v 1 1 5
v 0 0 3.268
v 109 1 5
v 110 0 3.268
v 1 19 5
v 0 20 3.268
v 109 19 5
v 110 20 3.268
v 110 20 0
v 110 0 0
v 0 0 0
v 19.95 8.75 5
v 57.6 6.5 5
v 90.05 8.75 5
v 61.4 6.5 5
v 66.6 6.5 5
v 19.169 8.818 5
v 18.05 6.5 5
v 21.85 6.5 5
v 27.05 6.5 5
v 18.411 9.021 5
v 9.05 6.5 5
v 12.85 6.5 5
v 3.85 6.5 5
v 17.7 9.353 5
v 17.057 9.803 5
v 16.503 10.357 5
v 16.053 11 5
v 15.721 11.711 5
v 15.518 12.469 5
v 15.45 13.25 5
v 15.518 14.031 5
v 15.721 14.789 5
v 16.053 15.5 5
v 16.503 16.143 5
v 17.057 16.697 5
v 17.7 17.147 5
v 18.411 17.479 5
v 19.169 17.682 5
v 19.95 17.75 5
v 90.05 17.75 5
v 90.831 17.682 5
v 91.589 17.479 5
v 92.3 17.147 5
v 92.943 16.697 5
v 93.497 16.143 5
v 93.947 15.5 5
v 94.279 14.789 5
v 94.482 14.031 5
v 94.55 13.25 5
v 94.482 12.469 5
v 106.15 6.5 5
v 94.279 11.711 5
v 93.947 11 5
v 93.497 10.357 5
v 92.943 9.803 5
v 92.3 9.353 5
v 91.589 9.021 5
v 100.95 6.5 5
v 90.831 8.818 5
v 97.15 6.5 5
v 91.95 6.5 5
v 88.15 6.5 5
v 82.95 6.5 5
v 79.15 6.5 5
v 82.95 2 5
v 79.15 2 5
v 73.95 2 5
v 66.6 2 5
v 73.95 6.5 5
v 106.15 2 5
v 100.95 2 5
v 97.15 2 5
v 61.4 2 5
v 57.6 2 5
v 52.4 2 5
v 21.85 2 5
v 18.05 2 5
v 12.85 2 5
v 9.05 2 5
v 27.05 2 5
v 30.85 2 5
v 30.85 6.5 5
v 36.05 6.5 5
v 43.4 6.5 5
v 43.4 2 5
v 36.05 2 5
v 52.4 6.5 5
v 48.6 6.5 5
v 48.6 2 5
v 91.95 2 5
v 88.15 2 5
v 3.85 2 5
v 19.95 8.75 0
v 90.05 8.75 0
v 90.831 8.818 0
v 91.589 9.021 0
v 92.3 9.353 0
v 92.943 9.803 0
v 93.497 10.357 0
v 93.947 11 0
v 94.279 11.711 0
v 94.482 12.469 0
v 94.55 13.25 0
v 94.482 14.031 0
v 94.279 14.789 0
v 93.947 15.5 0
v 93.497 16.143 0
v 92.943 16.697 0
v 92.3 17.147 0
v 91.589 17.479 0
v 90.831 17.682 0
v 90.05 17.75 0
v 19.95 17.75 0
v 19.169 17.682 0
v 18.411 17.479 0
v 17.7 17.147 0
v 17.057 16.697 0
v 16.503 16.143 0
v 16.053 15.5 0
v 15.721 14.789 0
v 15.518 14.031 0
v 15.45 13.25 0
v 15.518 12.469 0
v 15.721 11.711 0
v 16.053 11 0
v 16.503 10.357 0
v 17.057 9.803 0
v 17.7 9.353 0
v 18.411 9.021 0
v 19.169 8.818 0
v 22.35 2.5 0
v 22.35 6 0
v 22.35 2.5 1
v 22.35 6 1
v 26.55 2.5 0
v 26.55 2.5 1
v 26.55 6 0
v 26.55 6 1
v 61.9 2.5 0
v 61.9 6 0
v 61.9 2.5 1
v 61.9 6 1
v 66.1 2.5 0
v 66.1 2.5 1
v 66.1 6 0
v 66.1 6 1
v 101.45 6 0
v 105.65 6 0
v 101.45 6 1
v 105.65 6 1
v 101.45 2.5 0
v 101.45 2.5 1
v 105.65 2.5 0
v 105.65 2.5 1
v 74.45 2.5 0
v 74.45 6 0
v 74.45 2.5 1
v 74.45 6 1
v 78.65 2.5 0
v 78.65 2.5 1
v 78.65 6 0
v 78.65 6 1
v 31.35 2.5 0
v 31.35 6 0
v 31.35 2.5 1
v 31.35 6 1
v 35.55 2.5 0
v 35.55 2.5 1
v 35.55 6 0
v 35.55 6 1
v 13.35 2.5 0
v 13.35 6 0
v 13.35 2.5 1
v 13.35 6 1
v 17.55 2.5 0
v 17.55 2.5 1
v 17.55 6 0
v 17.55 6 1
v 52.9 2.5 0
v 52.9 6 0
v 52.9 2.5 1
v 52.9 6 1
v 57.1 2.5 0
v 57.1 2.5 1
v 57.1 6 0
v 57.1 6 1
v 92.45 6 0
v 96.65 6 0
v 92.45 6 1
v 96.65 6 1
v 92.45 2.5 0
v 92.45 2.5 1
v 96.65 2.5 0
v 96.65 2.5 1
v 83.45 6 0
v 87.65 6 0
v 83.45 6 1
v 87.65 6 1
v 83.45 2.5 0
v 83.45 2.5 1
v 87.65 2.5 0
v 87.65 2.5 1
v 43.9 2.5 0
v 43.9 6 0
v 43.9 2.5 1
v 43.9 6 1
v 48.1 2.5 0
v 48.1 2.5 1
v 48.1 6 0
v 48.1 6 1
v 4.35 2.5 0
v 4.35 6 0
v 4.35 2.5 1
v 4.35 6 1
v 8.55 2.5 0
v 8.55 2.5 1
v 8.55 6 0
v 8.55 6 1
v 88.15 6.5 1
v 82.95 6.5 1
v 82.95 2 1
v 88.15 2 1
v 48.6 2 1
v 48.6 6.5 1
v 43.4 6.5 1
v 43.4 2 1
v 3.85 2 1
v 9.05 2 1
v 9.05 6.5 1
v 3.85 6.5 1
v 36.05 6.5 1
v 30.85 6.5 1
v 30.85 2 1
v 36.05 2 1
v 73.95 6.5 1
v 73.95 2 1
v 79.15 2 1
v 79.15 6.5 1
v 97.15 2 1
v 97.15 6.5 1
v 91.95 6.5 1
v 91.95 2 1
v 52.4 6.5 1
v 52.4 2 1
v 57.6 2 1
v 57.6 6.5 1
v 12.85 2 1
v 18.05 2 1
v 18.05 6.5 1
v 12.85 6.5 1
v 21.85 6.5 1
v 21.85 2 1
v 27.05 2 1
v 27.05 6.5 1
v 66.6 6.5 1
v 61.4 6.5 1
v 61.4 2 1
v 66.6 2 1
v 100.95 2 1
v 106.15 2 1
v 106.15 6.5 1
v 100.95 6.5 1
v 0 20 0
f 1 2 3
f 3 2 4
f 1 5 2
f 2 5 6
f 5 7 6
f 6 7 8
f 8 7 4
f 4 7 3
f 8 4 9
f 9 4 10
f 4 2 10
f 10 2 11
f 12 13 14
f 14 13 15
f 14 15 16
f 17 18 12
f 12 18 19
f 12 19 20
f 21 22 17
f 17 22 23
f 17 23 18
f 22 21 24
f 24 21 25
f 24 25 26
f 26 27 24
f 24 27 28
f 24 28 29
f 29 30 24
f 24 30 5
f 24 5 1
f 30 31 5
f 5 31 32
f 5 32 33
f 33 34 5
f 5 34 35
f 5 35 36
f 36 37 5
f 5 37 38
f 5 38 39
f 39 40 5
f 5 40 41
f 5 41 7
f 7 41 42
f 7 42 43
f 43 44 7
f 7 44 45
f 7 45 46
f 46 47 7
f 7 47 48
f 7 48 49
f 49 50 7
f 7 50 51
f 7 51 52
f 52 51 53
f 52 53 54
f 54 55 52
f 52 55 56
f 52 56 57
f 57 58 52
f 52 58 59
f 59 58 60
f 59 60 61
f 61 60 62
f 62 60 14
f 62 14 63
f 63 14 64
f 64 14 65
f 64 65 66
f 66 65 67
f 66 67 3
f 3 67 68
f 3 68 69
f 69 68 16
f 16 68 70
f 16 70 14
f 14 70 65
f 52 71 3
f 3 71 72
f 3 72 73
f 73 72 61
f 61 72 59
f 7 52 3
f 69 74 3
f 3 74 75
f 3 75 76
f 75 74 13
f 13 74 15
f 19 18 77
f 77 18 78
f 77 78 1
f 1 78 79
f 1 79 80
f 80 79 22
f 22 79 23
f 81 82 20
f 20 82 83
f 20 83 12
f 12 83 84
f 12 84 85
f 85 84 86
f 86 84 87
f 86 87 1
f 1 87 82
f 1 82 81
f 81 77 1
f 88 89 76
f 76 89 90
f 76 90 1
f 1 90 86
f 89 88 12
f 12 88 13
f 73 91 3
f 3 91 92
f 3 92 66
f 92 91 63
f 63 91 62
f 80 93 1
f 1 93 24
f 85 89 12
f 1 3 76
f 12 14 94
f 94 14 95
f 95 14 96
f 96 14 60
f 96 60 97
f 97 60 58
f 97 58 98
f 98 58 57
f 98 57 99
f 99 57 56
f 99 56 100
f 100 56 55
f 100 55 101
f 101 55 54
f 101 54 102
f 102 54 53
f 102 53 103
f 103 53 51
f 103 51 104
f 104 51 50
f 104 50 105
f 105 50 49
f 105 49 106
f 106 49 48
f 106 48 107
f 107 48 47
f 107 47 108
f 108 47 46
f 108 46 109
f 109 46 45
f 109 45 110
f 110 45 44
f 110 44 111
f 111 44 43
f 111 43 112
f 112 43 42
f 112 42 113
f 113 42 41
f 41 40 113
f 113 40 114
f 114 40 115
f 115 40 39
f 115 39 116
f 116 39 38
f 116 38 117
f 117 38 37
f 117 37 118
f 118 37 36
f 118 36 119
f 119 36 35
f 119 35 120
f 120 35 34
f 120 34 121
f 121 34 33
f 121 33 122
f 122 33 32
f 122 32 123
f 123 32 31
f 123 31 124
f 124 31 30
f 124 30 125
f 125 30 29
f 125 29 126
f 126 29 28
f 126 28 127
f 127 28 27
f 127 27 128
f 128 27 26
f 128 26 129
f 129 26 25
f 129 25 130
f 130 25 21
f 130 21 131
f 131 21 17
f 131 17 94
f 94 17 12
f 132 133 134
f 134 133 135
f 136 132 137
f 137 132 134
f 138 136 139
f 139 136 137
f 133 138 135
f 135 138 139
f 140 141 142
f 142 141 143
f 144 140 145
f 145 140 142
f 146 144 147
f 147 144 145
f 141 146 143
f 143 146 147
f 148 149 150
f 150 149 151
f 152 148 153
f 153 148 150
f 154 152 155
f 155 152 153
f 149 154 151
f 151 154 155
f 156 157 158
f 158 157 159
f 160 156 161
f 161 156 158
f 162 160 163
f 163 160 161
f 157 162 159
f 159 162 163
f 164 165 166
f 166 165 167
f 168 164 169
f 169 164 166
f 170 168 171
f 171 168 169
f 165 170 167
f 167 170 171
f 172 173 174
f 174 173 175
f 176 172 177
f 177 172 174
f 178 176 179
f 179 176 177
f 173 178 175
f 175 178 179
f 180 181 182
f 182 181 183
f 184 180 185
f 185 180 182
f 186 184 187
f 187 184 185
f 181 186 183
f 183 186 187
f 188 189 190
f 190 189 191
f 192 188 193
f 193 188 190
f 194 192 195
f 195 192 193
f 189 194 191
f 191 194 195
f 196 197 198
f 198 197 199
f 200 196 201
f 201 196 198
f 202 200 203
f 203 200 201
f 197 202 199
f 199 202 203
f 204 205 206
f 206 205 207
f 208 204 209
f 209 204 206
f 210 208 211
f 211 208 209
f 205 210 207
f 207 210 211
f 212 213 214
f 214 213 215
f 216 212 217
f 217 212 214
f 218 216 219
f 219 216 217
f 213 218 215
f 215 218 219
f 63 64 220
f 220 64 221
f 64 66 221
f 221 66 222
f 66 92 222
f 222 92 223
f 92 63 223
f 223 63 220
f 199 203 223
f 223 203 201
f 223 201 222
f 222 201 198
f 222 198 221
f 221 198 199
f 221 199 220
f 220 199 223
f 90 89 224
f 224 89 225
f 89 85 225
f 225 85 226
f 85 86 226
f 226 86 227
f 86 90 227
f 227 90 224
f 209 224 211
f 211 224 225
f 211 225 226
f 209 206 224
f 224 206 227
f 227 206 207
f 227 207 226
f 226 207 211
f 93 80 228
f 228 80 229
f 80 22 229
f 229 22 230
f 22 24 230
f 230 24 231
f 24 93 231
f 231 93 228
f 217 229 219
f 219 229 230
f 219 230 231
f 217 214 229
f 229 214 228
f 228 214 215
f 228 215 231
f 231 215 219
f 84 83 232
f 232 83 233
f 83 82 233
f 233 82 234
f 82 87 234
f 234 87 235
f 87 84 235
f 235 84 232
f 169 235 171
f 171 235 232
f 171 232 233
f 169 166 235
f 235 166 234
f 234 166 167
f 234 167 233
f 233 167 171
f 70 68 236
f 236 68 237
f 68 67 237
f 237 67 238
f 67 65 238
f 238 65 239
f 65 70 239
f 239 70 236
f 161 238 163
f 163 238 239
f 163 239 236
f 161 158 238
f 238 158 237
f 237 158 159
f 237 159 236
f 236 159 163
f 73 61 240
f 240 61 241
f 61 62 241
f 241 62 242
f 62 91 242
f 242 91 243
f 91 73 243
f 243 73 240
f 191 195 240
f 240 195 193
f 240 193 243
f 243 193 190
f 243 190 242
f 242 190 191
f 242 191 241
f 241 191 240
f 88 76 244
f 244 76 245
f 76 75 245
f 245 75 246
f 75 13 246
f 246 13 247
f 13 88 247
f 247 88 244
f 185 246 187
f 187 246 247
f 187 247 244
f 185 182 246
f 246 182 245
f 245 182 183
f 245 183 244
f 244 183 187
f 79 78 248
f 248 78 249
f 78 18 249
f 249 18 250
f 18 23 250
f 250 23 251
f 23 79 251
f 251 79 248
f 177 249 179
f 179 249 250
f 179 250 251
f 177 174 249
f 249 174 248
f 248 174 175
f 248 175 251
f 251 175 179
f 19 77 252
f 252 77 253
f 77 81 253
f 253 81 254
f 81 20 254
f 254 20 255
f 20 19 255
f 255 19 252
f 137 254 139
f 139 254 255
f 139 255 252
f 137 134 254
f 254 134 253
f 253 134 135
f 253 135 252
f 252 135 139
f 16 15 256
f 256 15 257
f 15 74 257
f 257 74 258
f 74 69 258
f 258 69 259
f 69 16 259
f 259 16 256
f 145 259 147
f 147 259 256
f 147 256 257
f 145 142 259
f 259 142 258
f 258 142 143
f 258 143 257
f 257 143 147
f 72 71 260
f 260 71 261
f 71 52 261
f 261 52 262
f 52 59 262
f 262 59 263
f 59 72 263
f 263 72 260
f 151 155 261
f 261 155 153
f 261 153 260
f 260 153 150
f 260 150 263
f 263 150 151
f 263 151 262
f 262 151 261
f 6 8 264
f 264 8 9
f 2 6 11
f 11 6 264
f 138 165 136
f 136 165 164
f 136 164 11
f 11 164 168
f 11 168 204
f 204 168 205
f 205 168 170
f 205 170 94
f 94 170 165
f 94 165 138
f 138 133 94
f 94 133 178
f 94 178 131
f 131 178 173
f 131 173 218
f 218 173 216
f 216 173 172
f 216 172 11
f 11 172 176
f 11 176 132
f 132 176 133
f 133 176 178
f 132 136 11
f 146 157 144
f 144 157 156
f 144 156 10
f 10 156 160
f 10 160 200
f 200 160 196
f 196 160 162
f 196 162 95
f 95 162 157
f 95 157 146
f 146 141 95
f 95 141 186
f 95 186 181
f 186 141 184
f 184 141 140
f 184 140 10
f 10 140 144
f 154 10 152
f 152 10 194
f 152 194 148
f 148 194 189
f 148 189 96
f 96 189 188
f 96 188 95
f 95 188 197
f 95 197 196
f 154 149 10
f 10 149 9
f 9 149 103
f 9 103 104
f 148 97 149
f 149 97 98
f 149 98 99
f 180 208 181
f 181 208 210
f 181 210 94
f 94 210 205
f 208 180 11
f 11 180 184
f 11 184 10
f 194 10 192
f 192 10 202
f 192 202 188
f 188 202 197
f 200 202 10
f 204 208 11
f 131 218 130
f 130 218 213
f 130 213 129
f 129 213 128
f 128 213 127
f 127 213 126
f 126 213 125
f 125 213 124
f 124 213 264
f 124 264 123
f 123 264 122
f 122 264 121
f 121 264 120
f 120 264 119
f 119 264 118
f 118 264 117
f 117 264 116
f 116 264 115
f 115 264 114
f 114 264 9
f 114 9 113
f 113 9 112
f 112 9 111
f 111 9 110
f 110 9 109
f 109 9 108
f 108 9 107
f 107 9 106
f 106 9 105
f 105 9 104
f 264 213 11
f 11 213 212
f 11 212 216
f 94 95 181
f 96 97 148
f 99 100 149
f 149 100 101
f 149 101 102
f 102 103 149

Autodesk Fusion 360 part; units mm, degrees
sketch "Sketch1" plane through (0, 0, 0) normal (0, 0, 1) x (1, 0, 0)
  line L0 (0, 0) -> (110, 0)
  line L1 (110, 0) -> (110, 20)
  line L2 (110, 20) -> (0, 20)
  line L3 (0, 20) -> (0, 0)
  dimension "d1" = 110
  dimension "d2" = 20
extrude "Extrude1" add sketch "Sketch1" along normal blind 5
sketch "Sketch2" plane through (0, 0, 5) normal (0, 0, 1) x (-1, 0, 0)
  line L0 (0, -20) -> (0, 0)
  line L1 (0, 0) -> (-110, 0)
  line L2 (-110, 0) -> (-110, -20)
  line L3 (-110, -20) -> (0, -20)
  line L4 (-3.85, -2) -> (-106.15, -2) construction
  line L5 (-46, -2) -> (-46, -6.5) construction
  line L6 (-91.95, -6.5) -> (-91.95, -2)
  line L7 (-97.15, -6.5) -> (-91.95, -6.5)
  line L8 (-73.95, -6.5) -> (-73.95, -2)
  line L9 (-55, -2) -> (-55, -6.5) construction
  line L10 (-33.45, -2) -> (-33.45, -6.5) construction
  line L11 (-27.05, -2) -> (-27.05, -6.5)
  line L12 (-30.85, -6.5) -> (-30.85, -2)
  line L13 (-43.4, -6.5) -> (-43.4, -2)
  line L14 (-18.05, -2) -> (-18.05, -6.5)
  line L15 (-21.85, -6.5) -> (-21.85, -2)
  line L16 (-36.05, -6.5) -> (-30.85, -6.5)
  line L17 (-9.05, -2) -> (-9.05, -6.5)
  line L18 (-9.05, -6.5) -> (-3.85, -6.5)
  line L19 (-21.85, -2) -> (-27.05, -2)
  line L20 (-3.85, -2) -> (-9.05, -2)
  line L21 (-12.85, -2) -> (-18.05, -2)
  line L22 (-3.85, -6.5) -> (-3.85, -2)
  line L23 (-18.05, -6.5) -> (-12.85, -6.5)
  line L24 (-30.85, -2) -> (-36.05, -2)
  line L25 (-82.95, -6.5) -> (-82.95, -2)
  line L26 (-57.6, -2) -> (-57.6, -6.5)
  line L27 (-48.6, -2) -> (-48.6, -6.5)
  line L28 (-61.4, -2) -> (-66.6, -2)
  line L29 (-64, -2) -> (-64, -6.5) construction
  line L30 (-106.15, -6.5) -> (-100.95, -6.5)
  line L31 (-100.95, -2) -> (-106.15, -2)
  line L32 (-106.15, -2) -> (-106.15, -6.5)
  line L33 (-79.15, -2) -> (-79.15, -6.5)
  line L34 (-61.4, -6.5) -> (-61.4, -2)
  line L35 (-52.4, -6.5) -> (-52.4, -2)
  line L36 (-88.15, -6.5) -> (-82.95, -6.5)
  line L37 (-97.15, -2) -> (-97.15, -6.5)
  line L38 (-106.15, -2) -> (-106.15, -6.5) construction
  line L39 (-48.6, -6.5) -> (-43.4, -6.5)
  line L40 (-52.4, -2) -> (-57.6, -2)
  line L41 (-76.55, -2) -> (-76.55, -6.5) construction
  line L42 (-43.4, -2) -> (-48.6, -2)
  line L43 (-57.6, -6.5) -> (-52.4, -6.5)
  line L44 (-66.6, -6.5) -> (-61.4, -6.5)
  line L45 (-82.95, -2) -> (-88.15, -2)
  line L46 (-66.6, -2) -> (-66.6, -6.5)
  line L47 (-100.95, -6.5) -> (-100.95, -2)
  line L48 (-91.95, -2) -> (-97.15, -2)
  line L49 (-88.15, -2) -> (-88.15, -6.5)
  line L50 (-27.05, -6.5) -> (-21.85, -6.5)
  line L51 (-12.85, -6.5) -> (-12.85, -2)
  line L52 (-36.05, -2) -> (-36.05, -6.5)
  line L53 (-3.85, -6.5) -> (-3.85, -2) construction
  line L54 (-73.95, -2) -> (-79.15, -2)
  line L55 (-106.15, -6.5) -> (-3.85, -6.5) construction
  line L56 (-79.15, -6.5) -> (-73.95, -6.5)
  line L57 (0, -2) -> (-110, -2) construction
  line L58 (-55, -20) -> (-55, 0) construction
  dimension "d27" = 9
  dimension "d28" = 0
  dimension "d31" = 9
  dimension "d32" = 0
  dimension "d35" = 9
  dimension "d36" = 0
  dimension "d37" = 5.2
  dimension "d38" = 4.5
  dimension "d39" = 5.2
  dimension "d40" = 4.5
  dimension "d41" = 12.55
  dimension "d42" = 5.2
  dimension "d43" = 4.5
  dimension "d44" = 12.55
  dimension "d45" = 2
extrude "Extrude2" cut sketch "Sketch2" against normal blind 4 contours L6 L7 L37 L48 | L8 L33 L54 L56 | L11 L15 L19 L50 | L12 L16 L24 L52 | L13 L27 L39 L42 | L14 L21 L23 L51 | L17 L18 L20 L22 | L25 L36 L45 L49 | L26 L35 L40 L43 | L28 L34 L44 L46 | L30 L31 L32 L47
sketch "Sketch3" plane through (0, 0, 1) normal (0, 0, 1) x (-1, 0, 0)
  line L0 (-3.85, -6.5) -> (-3.85, -2)
  line L1 (-3.85, -2) -> (-9.05, -2)
  line L2 (-9.05, -2) -> (-9.05, -6.5)
  line L3 (-9.05, -6.5) -> (-3.85, -6.5)
  line L4 (-4.35, -6) -> (-8.55, -6)
  line L5 (-8.55, -6) -> (-8.55, -2.5)
  line L6 (-8.55, -2.5) -> (-4.35, -2.5)
  line L7 (-4.35, -2.5) -> (-4.35, -6)
  line L8 (-13.35, -6) -> (-17.55, -6)
  line L9 (-17.55, -6) -> (-17.55, -2.5)
  line L10 (-17.55, -2.5) -> (-13.35, -2.5)
  line L11 (-13.35, -2.5) -> (-13.35, -6)
  line L12 (-22.35, -6) -> (-26.55, -6)
  line L13 (-26.55, -6) -> (-26.55, -2.5)
  line L14 (-26.55, -2.5) -> (-22.35, -2.5)
  line L15 (-22.35, -2.5) -> (-22.35, -6)
  line L16 (-31.35, -6) -> (-35.55, -6)
  line L17 (-35.55, -6) -> (-35.55, -2.5)
  line L18 (-35.55, -2.5) -> (-31.35, -2.5)
  line L19 (-31.35, -2.5) -> (-31.35, -6)
  line L20 (-43.9, -6) -> (-48.1, -6)
  line L21 (-48.1, -6) -> (-48.1, -2.5)
  line L22 (-48.1, -2.5) -> (-43.9, -2.5)
  line L23 (-43.9, -2.5) -> (-43.9, -6)
  line L24 (-43.4, -6.5) -> (-48.6, -6.5)
  line L25 (-48.6, -2) -> (-43.4, -2)
  line L26 (-48.6, -6.5) -> (-48.6, -2)
  line L27 (-43.4, -2) -> (-43.4, -6.5)
  line L28 (-52.9, -6) -> (-57.1, -6)
  line L29 (-57.1, -6) -> (-57.1, -2.5)
  line L30 (-57.1, -2.5) -> (-52.9, -2.5)
  line L31 (-52.9, -2.5) -> (-52.9, -6)
  line L32 (-61.9, -6) -> (-66.1, -6)
  line L33 (-66.1, -6) -> (-66.1, -2.5)
  line L34 (-66.1, -2.5) -> (-61.9, -2.5)
  line L35 (-61.9, -2.5) -> (-61.9, -6)
  line L36 (-78.65, -2.5) -> (-74.45, -2.5)
  line L37 (-78.65, -6) -> (-78.65, -2.5)
  line L38 (-74.45, -6) -> (-78.65, -6)
  line L39 (-74.45, -2.5) -> (-74.45, -6)
  line L40 (-73.95, -6.5) -> (-79.15, -6.5)
  line L41 (-79.15, -2) -> (-73.95, -2)
  line L42 (-79.15, -6.5) -> (-79.15, -2)
  line L43 (-73.95, -2) -> (-73.95, -6.5)
  line L44 (-87.65, -6) -> (-87.65, -2.5)
  line L45 (-87.65, -2.5) -> (-83.45, -2.5)
  line L46 (-83.45, -2.5) -> (-83.45, -6)
  line L47 (-83.45, -6) -> (-87.65, -6)
  line L48 (-96.65, -6) -> (-96.65, -2.5)
  line L49 (-96.65, -2.5) -> (-92.45, -2.5)
  line L50 (-92.45, -2.5) -> (-92.45, -6)
  line L51 (-92.45, -6) -> (-96.65, -6)
  line L52 (-105.65, -6) -> (-105.65, -2.5)
  line L53 (-105.65, -2.5) -> (-101.45, -2.5)
  line L54 (-101.45, -2.5) -> (-101.45, -6)
  line L55 (-101.45, -6) -> (-105.65, -6)
  dimension "d48" = 0.5
  dimension "d49" = 0.5
  dimension "d50" = 0.5
  dimension "d51" = 0.5
  dimension "d54" = -9
  dimension "d55" = 0
  dimension "d56" = 0.5
  dimension "d57" = 0.5
  dimension "d58" = 0.5
  dimension "d59" = 0.5
  dimension "d62" = -9
  dimension "d63" = 0
  dimension "d64" = 0.5
  dimension "d65" = 0.5
  dimension "d66" = 0.5
  dimension "d67" = 0.5
  dimension "d70" = -9
  dimension "d71" = 0
extrude "Extrude3" cut sketch "Sketch3" against normal blind 2 contours L4 L5 L6 L7 | L8 L9 L10 L11 | L12 L13 L14 L15 | L16 L17 L18 L19 | L20 L21 L22 L23 | L28 L29 L30 L31 | L32 L33 L34 L35 | L36 L37 L38 L39 | L44 L45 L46 L47 | L48 L49 L50 L51 | L52 L53 L54 L55
sketch "Sketch4" plane through (0, 0, 5) normal (0, 0, 1) x (-1, 0, 0)
  line L0 (0, -20) -> (0, 0)
  line L1 (0, 0) -> (-110, 0)
  line L2 (-110, 0) -> (-110, -20)
  line L3 (-110, -20) -> (0, -20)
  line L4 (-106.15, -2) -> (-100.95, -2)
  line L5 (-100.95, -2) -> (-100.95, -6.5)
  line L6 (-100.95, -6.5) -> (-106.15, -6.5)
  line L7 (-106.15, -6.5) -> (-106.15, -2)
  line L8 (-61.4, -6.5) -> (-66.6, -6.5)
  line L9 (-66.6, -6.5) -> (-66.6, -2)
  line L10 (-66.6, -2) -> (-61.4, -2)
  line L11 (-61.4, -2) -> (-61.4, -6.5)
  line L12 (-21.85, -2) -> (-21.85, -6.5)
  line L13 (-21.85, -6.5) -> (-27.05, -6.5)
  line L14 (-27.05, -6.5) -> (-27.05, -2)
  line L15 (-27.05, -2) -> (-21.85, -2)
  line L16 (-18.05, -2) -> (-12.85, -2)
  line L17 (-12.85, -2) -> (-12.85, -6.5)
  line L18 (-12.85, -6.5) -> (-18.05, -6.5)
  line L19 (-18.05, -6.5) -> (-18.05, -2)
  line L20 (-52.4, -2) -> (-52.4, -6.5)
  line L21 (-52.4, -6.5) -> (-57.6, -6.5)
  line L22 (-57.6, -6.5) -> (-57.6, -2)
  line L23 (-57.6, -2) -> (-52.4, -2)
  line L24 (-97.15, -6.5) -> (-97.15, -2)
  line L25 (-97.15, -2) -> (-91.95, -2)
  line L26 (-91.95, -2) -> (-91.95, -6.5)
  line L27 (-91.95, -6.5) -> (-97.15, -6.5)
  line L28 (-73.95, -2) -> (-73.95, -6.5)
  line L29 (-73.95, -6.5) -> (-79.15, -6.5)
  line L30 (-79.15, -6.5) -> (-79.15, -2)
  line L31 (-79.15, -2) -> (-73.95, -2)
  line L32 (-30.85, -6.5) -> (-36.05, -6.5)
  line L33 (-36.05, -6.5) -> (-36.05, -2)
  line L34 (-36.05, -2) -> (-30.85, -2)
  line L35 (-30.85, -2) -> (-30.85, -6.5)
  line L36 (-9.05, -2) -> (-3.85, -2)
  line L37 (-3.85, -2) -> (-3.85, -6.5)
  line L38 (-3.85, -6.5) -> (-9.05, -6.5)
  line L39 (-9.05, -6.5) -> (-9.05, -2)
  line L40 (-48.6, -6.5) -> (-48.6, -2)
  line L41 (-48.6, -2) -> (-43.4, -2)
  line L42 (-43.4, -2) -> (-43.4, -6.5)
  line L43 (-43.4, -6.5) -> (-48.6, -6.5)
  line L44 (-82.95, -6.5) -> (-88.15, -6.5)
  line L45 (-88.15, -6.5) -> (-88.15, -2)
  line L46 (-88.15, -2) -> (-82.95, -2)
  line L47 (-82.95, -2) -> (-82.95, -6.5)
  line L48 (-21.85, -6.5) -> (-18.05, -6.5) construction
  line L49 (-19.95, -6.5) -> (-19.95, -20) construction
  line L50 (-88.15, -6.5) -> (-91.95, -6.5) construction
  line L51 (-90.05, -6.5) -> (-90.05, -20) construction
  circle A0 centre (-19.95, -13.25) radius 4.5
  circle A1 centre (-90.05, -13.25) radius 4.5
  line L52 (-19.95, -17.75) -> (-90.05, -17.75)
  line L53 (-90.05, -8.75) -> (-19.95, -8.75)
  dimension "d80" = 9
  dimension "d81" = 9
extrude "Extrude4" cut sketch "Sketch4" against normal blind 5 contours A0 | A0 A1 L52 L53 | A1
chamfer "Chamfer1" distance 1 angle 60 4 edges at (55, 20, 5) (0, 10, 5) (55, 0, 5) (110, 10, 5) measured on face at (101.8291, 13.3621, 5) measured on face at (101.8291, 13.3621, 5) measured on face at (101.8291, 13.3621, 5) measured on face at (101.8291, 13.3621, 5)
equation "d37 = 5 mm + 0.2 mm"
equation "d38 = 4.3 mm + 0.2 mm"
